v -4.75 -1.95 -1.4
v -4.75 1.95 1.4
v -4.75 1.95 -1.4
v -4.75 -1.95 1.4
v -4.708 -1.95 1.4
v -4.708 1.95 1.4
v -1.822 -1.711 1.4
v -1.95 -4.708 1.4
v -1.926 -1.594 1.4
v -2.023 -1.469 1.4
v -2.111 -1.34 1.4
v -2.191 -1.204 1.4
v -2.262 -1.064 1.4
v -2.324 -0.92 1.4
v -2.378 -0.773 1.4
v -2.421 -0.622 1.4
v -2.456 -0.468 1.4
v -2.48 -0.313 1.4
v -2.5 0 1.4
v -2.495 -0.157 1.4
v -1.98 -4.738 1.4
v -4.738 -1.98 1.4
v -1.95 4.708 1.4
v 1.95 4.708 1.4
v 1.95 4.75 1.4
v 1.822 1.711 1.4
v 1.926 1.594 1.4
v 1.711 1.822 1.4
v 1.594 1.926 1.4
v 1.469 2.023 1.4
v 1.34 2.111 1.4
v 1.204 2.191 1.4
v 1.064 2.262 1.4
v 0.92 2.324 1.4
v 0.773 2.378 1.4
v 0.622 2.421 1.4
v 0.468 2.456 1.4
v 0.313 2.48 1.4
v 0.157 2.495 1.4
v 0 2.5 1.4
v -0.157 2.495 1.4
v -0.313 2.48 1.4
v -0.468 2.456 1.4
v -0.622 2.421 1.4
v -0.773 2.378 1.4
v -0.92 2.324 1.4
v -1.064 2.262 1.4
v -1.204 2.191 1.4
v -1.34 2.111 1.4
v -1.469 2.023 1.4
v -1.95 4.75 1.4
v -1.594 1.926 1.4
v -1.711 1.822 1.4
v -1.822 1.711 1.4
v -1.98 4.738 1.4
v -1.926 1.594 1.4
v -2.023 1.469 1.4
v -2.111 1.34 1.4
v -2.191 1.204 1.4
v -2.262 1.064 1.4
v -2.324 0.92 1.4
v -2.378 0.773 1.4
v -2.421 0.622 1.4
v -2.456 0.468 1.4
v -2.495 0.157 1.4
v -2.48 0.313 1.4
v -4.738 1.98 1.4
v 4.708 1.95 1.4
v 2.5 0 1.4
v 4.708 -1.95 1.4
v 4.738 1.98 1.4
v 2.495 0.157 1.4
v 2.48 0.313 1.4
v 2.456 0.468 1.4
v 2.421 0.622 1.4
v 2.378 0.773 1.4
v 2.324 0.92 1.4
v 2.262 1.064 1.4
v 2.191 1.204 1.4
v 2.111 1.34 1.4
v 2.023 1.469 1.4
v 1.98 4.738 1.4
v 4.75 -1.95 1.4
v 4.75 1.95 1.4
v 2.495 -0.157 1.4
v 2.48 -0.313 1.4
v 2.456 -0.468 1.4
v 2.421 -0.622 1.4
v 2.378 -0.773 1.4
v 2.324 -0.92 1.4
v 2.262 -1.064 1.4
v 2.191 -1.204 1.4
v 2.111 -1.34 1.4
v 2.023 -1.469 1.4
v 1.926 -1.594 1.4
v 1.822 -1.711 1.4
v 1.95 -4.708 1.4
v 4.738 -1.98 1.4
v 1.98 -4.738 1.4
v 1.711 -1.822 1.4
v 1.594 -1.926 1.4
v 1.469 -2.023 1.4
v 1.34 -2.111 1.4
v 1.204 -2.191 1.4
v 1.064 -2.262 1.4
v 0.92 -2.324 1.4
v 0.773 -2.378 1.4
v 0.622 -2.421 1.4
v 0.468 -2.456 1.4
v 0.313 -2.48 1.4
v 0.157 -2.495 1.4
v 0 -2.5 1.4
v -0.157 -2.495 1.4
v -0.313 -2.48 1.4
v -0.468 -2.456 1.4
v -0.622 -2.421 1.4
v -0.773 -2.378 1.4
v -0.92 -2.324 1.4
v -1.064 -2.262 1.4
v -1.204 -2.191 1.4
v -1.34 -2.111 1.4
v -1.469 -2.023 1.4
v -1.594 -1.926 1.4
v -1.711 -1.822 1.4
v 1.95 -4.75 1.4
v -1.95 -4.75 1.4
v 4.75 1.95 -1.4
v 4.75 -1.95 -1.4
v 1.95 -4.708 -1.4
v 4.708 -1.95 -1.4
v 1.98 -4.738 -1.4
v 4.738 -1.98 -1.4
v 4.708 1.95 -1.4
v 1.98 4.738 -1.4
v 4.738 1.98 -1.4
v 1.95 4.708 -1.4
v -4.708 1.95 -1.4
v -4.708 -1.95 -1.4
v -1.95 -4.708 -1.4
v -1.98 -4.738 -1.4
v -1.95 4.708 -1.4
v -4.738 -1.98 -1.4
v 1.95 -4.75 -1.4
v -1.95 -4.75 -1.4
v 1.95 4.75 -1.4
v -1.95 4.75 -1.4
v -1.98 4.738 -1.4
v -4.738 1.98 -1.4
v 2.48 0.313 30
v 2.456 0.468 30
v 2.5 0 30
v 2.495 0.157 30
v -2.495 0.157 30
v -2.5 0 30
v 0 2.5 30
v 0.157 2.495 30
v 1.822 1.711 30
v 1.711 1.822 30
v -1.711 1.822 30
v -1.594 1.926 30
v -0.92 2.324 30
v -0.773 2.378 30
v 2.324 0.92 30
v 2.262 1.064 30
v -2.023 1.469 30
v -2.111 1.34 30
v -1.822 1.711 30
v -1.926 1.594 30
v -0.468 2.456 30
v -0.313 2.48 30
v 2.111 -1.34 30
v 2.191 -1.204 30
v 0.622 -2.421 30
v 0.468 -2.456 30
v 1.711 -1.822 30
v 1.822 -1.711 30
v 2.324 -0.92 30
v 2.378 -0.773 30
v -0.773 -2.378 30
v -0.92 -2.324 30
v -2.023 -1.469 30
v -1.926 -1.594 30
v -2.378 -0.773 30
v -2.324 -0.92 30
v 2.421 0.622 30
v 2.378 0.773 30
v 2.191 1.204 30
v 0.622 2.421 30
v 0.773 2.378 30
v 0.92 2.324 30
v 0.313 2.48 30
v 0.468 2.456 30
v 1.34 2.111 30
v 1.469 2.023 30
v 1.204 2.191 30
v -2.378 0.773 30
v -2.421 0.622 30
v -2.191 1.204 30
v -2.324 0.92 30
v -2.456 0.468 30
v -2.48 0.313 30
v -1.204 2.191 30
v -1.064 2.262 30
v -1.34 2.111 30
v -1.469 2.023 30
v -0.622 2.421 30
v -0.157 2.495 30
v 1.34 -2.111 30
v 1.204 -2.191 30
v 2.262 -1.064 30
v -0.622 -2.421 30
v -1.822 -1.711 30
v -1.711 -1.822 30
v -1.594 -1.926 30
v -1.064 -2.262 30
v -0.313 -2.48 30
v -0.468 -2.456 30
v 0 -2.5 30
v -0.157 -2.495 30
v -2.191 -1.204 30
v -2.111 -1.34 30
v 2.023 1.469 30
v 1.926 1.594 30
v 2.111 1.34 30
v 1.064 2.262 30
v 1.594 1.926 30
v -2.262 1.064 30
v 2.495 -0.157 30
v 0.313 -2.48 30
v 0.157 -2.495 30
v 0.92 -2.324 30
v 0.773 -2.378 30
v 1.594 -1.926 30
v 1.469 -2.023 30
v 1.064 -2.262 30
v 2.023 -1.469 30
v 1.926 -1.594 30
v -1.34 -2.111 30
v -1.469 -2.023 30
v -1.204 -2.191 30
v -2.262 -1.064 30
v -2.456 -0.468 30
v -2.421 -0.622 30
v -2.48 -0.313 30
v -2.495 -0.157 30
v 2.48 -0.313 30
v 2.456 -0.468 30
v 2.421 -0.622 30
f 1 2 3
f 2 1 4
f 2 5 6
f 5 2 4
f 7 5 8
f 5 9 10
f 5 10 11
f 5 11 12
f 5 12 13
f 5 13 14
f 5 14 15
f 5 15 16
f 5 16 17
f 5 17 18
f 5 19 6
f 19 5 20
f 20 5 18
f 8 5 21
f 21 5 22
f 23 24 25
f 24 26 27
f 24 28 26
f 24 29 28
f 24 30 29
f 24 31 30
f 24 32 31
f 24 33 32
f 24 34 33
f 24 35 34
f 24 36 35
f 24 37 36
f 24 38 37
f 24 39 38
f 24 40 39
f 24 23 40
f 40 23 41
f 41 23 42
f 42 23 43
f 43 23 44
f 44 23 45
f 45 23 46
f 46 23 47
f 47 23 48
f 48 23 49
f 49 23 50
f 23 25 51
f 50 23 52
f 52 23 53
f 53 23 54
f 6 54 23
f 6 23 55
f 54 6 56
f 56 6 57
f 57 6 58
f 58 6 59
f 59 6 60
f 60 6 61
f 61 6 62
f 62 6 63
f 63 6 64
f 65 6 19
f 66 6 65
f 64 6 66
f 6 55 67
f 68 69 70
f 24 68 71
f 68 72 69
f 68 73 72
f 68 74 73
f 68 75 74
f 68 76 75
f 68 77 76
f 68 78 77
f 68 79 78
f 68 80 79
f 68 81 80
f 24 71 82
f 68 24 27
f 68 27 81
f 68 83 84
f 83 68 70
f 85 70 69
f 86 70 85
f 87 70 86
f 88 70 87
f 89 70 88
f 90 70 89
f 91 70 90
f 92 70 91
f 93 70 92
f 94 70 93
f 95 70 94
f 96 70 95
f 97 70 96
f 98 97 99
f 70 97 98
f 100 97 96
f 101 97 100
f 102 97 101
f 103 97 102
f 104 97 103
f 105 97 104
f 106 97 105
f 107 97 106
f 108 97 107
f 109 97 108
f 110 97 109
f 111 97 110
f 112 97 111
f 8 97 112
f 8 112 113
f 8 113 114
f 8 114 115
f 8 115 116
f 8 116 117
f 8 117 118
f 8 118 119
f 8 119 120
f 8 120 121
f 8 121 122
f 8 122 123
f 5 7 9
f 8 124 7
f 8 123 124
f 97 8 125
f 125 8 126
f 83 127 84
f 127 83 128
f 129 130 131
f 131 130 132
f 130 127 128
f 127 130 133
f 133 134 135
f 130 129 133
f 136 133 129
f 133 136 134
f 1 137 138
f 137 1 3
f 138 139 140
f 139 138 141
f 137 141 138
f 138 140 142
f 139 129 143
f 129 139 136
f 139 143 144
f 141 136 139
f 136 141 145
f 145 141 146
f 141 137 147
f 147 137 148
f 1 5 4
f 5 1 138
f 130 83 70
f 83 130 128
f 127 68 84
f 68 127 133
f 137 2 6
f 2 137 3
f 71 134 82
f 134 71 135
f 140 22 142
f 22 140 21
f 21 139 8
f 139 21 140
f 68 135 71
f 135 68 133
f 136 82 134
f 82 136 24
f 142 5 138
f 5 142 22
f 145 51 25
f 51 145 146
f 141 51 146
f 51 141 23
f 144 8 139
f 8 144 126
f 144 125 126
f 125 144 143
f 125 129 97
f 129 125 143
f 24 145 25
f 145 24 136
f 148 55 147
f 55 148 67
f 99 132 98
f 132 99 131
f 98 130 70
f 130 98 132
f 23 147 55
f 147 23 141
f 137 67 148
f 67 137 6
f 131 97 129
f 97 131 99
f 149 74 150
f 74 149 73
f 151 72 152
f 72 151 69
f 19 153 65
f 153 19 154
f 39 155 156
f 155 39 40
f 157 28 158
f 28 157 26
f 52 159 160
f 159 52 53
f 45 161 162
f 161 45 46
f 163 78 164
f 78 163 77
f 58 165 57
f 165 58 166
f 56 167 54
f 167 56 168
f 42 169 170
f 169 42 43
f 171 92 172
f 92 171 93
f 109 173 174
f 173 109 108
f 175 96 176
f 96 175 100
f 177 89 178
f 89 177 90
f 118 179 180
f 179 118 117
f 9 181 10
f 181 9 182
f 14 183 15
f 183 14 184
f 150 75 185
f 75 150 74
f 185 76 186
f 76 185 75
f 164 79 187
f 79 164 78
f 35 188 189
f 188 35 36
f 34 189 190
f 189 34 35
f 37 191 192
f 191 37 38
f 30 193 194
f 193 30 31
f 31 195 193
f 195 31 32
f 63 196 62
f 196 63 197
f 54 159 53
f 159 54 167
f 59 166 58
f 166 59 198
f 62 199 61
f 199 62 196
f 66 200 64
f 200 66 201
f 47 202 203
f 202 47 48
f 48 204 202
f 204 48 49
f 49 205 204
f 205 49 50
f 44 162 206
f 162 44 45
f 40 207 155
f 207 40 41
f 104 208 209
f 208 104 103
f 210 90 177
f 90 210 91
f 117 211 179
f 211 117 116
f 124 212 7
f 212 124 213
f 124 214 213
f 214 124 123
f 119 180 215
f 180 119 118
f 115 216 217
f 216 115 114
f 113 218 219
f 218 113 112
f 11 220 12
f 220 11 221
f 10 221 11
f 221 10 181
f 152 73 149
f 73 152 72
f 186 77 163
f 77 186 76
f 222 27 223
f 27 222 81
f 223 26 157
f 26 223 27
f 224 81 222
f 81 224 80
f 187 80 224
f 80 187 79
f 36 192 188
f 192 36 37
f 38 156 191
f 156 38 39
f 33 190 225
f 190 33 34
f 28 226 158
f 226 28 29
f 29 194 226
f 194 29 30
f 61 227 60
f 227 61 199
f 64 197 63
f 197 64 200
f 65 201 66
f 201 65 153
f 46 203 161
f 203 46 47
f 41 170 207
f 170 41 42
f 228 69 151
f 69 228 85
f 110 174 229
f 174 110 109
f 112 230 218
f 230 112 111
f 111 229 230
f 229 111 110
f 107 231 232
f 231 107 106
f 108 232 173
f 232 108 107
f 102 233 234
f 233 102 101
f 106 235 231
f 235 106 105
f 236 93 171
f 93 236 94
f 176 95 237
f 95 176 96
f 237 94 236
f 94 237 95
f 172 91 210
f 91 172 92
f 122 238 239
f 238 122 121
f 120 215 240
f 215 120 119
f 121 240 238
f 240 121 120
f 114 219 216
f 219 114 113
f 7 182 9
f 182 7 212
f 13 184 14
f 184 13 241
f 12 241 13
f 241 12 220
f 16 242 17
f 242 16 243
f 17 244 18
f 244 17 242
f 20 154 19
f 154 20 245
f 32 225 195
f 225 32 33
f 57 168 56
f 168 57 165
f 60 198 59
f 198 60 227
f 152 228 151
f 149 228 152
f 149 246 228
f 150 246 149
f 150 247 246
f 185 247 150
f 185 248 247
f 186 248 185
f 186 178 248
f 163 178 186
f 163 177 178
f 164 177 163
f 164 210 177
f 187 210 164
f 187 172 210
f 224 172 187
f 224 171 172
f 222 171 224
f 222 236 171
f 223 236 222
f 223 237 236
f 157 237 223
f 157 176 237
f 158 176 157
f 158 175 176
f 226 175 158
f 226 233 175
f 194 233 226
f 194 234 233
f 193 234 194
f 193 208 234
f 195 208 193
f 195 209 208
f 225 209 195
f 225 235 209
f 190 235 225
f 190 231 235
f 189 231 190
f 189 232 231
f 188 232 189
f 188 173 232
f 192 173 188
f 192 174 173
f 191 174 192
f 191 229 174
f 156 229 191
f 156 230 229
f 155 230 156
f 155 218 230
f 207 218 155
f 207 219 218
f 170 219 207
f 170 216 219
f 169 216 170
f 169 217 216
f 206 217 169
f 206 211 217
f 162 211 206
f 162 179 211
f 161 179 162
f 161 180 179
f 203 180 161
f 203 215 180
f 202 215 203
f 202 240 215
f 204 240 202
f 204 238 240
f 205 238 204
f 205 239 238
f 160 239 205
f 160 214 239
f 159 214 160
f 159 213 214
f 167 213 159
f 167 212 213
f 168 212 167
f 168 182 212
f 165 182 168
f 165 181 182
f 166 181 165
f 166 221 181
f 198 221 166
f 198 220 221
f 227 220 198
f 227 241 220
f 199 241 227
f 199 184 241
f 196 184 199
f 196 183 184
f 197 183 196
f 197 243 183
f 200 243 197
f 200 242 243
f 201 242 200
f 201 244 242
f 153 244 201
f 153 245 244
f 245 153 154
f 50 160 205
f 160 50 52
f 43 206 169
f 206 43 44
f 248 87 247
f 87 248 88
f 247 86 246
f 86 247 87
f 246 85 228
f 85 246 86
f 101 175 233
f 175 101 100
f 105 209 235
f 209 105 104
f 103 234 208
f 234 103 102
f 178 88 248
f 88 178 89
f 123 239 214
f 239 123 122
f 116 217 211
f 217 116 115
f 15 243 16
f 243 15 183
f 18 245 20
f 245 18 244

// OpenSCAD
$fn=100;
cube([9.5,3.9,2.8], center=true);
rotate([0,0,45]) cube([9.5,3.9,2.8], center=true);
rotate([0,0,90]) cube([9.5,3.9,2.8], center=true);
rotate([0,0,-45]) cube([9.5,3.9,2.8], center=true);
cylinder(d=5,h=30);
